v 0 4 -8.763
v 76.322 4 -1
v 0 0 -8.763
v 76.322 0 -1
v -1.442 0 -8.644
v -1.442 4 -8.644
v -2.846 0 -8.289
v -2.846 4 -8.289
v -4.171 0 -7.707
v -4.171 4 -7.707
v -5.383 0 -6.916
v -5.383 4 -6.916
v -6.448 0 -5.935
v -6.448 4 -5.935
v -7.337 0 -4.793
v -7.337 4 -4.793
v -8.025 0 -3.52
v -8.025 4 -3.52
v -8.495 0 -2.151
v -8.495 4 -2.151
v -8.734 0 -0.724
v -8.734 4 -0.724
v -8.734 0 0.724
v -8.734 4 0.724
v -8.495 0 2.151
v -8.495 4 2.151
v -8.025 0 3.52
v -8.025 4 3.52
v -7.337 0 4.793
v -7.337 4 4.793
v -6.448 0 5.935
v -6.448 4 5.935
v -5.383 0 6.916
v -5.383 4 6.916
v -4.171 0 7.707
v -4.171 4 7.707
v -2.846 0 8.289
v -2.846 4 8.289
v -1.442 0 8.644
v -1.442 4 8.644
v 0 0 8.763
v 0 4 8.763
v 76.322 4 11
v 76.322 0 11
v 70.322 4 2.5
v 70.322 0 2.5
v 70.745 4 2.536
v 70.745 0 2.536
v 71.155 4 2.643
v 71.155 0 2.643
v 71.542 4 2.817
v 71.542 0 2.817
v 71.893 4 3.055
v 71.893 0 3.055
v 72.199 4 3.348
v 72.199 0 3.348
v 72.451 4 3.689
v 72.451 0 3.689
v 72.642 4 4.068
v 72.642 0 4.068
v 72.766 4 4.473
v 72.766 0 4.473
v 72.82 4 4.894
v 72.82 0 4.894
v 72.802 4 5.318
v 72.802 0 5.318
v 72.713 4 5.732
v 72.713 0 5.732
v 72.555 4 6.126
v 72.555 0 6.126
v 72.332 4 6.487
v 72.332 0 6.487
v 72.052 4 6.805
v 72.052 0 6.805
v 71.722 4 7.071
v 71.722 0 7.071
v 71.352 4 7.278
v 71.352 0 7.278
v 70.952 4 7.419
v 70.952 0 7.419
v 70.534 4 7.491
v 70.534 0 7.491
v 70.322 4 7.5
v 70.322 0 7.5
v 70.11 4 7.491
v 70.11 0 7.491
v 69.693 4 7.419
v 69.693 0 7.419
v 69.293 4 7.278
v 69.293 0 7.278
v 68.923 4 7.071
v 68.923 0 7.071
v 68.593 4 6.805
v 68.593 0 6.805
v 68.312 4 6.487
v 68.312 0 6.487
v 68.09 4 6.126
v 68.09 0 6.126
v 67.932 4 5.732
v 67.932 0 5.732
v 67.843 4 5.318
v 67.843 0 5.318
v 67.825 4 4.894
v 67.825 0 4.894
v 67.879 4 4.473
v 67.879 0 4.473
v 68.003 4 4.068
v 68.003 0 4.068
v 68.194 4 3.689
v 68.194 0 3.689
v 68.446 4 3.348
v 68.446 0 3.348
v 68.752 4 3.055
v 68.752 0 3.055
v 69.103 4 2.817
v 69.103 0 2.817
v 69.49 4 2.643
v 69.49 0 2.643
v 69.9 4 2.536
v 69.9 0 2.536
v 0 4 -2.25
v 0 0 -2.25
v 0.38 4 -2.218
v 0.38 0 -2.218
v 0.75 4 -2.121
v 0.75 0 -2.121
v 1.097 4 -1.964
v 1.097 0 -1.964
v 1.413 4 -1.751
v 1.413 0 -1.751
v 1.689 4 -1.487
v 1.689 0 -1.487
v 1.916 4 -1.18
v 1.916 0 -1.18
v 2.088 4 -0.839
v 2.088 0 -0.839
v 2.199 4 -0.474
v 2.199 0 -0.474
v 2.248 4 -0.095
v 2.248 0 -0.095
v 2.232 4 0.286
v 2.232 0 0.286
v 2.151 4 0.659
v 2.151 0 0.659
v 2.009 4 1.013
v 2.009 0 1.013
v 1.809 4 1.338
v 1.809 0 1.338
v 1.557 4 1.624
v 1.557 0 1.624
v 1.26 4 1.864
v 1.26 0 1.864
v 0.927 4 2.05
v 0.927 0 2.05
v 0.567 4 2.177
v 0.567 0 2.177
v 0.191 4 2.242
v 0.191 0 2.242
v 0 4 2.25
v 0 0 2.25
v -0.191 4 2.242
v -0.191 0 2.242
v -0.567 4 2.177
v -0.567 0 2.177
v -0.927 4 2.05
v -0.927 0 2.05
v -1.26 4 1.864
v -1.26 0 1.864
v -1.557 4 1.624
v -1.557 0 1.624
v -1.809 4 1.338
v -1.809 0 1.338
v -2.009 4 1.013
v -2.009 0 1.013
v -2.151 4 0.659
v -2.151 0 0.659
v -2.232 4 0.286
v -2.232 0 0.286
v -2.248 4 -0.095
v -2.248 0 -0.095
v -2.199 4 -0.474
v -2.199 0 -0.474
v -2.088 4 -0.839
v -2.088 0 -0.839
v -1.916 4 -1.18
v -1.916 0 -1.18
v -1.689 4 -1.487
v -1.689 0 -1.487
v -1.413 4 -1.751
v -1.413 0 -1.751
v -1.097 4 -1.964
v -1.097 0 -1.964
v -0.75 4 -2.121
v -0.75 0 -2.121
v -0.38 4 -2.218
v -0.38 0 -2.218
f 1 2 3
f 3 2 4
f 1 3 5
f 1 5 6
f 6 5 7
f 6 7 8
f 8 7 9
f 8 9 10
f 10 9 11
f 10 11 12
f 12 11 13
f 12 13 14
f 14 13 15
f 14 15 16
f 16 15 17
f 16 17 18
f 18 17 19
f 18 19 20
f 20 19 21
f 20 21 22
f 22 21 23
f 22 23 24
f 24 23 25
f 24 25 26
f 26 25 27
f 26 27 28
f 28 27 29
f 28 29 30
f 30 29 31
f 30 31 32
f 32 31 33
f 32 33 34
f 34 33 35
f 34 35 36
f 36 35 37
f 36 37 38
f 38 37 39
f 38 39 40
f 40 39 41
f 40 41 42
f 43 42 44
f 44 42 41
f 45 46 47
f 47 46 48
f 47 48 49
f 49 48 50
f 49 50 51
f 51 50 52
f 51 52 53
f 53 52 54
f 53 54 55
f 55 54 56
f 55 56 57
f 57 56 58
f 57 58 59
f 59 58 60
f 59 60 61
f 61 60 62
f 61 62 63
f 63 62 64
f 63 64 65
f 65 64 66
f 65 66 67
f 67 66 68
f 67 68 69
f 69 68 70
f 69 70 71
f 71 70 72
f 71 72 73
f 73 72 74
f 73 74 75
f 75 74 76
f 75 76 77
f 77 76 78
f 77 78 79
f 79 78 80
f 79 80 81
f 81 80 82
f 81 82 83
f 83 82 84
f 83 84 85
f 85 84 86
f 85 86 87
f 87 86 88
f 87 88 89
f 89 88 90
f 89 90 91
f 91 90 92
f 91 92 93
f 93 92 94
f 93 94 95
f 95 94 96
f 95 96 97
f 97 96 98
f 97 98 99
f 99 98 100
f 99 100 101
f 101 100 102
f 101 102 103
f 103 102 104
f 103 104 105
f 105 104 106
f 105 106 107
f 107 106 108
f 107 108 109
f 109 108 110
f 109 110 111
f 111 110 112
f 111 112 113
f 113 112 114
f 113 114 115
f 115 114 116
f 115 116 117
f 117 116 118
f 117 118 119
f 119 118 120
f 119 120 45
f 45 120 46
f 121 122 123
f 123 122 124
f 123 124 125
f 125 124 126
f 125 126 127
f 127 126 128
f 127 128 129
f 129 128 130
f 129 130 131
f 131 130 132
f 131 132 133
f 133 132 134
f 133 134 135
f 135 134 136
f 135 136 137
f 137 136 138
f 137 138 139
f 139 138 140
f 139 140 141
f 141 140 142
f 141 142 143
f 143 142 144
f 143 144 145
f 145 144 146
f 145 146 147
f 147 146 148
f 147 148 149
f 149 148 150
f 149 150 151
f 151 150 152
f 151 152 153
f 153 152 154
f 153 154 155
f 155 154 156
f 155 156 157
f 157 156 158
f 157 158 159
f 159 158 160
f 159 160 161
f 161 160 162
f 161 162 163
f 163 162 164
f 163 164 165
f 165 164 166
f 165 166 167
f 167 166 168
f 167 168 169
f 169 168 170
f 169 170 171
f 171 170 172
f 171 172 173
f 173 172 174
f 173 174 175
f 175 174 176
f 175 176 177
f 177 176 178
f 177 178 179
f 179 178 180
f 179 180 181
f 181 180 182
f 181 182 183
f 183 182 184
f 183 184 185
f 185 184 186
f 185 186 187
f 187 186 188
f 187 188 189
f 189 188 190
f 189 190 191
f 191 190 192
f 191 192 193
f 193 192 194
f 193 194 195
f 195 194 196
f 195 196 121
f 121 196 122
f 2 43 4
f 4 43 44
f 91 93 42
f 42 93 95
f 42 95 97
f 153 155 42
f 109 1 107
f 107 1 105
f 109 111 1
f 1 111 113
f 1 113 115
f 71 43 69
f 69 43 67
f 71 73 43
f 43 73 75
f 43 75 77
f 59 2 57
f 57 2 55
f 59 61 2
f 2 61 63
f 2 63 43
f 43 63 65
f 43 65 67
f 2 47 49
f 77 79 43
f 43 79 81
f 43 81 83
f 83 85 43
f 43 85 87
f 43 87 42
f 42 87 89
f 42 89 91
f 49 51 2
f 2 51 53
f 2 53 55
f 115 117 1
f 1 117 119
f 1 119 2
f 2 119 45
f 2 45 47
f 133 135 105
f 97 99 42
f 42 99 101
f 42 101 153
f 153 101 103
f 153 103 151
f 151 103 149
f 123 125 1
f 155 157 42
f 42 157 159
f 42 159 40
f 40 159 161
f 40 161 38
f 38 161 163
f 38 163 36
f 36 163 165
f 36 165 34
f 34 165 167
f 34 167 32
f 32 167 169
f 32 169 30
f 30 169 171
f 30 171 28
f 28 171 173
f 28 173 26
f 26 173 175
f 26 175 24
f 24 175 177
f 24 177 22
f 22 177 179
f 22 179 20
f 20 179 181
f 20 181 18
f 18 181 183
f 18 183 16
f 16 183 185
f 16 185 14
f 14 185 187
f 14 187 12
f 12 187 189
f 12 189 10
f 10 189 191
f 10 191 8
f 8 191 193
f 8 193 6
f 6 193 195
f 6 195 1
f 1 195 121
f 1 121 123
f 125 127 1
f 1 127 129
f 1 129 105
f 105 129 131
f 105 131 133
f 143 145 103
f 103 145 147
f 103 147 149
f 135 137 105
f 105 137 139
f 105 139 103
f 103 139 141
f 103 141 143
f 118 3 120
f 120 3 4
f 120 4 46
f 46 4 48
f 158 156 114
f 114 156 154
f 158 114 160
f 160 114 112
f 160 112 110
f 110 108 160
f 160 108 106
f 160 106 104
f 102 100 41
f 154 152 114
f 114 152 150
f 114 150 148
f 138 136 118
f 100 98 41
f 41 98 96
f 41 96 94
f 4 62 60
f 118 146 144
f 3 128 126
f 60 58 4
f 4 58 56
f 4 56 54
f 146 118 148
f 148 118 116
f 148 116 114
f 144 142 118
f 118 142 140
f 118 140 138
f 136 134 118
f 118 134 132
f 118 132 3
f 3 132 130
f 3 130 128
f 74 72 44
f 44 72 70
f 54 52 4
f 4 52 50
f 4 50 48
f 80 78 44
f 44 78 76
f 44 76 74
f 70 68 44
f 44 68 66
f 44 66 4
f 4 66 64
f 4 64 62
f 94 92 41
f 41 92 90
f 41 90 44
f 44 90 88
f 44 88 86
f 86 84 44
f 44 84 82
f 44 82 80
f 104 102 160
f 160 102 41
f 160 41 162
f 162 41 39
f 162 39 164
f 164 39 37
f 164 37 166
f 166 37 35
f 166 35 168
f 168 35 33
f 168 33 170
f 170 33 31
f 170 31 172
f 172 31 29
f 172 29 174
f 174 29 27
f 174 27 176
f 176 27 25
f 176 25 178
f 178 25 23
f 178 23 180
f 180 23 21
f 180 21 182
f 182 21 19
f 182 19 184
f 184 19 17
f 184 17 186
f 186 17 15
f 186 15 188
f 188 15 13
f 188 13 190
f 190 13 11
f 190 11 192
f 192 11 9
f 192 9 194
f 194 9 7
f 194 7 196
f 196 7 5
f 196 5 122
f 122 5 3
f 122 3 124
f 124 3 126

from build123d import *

# Parameters (mm, degrees)
SKETCH1_R           = 2.5
SKETCH1_R_2         = 2.25
BOSS_EXTRUDE1_DEPTH = 4


with BuildPart() as part:
    # Sketch1 → Boss-Extrude1 (new body)
    with BuildSketch(Plane(origin=(0, 0, 0), x_dir=(1, 0, 0), z_dir=(0, 1, 0))):
        with BuildLine():
            Line((1.764581835, 8.584003487), (0, 8.763496159))
            ThreePointArc((0, 8.763496159), (-8.763496159, 0), (0, -8.763496159))
            Line((0, -8.763496159), (76.322471515, -11))
            Line((76.322471515, -11), (76.322471515, 1))
            Line((76.322471515, 1), (1.764581835, 8.584003487))
        make_face()
        with Locations((70.322471515, -5)):
            Circle(SKETCH1_R, mode=Mode.SUBTRACT)
        Circle(SKETCH1_R_2, mode=Mode.SUBTRACT)
    extrude(amount=BOSS_EXTRUDE1_DEPTH)


solid = part.part
